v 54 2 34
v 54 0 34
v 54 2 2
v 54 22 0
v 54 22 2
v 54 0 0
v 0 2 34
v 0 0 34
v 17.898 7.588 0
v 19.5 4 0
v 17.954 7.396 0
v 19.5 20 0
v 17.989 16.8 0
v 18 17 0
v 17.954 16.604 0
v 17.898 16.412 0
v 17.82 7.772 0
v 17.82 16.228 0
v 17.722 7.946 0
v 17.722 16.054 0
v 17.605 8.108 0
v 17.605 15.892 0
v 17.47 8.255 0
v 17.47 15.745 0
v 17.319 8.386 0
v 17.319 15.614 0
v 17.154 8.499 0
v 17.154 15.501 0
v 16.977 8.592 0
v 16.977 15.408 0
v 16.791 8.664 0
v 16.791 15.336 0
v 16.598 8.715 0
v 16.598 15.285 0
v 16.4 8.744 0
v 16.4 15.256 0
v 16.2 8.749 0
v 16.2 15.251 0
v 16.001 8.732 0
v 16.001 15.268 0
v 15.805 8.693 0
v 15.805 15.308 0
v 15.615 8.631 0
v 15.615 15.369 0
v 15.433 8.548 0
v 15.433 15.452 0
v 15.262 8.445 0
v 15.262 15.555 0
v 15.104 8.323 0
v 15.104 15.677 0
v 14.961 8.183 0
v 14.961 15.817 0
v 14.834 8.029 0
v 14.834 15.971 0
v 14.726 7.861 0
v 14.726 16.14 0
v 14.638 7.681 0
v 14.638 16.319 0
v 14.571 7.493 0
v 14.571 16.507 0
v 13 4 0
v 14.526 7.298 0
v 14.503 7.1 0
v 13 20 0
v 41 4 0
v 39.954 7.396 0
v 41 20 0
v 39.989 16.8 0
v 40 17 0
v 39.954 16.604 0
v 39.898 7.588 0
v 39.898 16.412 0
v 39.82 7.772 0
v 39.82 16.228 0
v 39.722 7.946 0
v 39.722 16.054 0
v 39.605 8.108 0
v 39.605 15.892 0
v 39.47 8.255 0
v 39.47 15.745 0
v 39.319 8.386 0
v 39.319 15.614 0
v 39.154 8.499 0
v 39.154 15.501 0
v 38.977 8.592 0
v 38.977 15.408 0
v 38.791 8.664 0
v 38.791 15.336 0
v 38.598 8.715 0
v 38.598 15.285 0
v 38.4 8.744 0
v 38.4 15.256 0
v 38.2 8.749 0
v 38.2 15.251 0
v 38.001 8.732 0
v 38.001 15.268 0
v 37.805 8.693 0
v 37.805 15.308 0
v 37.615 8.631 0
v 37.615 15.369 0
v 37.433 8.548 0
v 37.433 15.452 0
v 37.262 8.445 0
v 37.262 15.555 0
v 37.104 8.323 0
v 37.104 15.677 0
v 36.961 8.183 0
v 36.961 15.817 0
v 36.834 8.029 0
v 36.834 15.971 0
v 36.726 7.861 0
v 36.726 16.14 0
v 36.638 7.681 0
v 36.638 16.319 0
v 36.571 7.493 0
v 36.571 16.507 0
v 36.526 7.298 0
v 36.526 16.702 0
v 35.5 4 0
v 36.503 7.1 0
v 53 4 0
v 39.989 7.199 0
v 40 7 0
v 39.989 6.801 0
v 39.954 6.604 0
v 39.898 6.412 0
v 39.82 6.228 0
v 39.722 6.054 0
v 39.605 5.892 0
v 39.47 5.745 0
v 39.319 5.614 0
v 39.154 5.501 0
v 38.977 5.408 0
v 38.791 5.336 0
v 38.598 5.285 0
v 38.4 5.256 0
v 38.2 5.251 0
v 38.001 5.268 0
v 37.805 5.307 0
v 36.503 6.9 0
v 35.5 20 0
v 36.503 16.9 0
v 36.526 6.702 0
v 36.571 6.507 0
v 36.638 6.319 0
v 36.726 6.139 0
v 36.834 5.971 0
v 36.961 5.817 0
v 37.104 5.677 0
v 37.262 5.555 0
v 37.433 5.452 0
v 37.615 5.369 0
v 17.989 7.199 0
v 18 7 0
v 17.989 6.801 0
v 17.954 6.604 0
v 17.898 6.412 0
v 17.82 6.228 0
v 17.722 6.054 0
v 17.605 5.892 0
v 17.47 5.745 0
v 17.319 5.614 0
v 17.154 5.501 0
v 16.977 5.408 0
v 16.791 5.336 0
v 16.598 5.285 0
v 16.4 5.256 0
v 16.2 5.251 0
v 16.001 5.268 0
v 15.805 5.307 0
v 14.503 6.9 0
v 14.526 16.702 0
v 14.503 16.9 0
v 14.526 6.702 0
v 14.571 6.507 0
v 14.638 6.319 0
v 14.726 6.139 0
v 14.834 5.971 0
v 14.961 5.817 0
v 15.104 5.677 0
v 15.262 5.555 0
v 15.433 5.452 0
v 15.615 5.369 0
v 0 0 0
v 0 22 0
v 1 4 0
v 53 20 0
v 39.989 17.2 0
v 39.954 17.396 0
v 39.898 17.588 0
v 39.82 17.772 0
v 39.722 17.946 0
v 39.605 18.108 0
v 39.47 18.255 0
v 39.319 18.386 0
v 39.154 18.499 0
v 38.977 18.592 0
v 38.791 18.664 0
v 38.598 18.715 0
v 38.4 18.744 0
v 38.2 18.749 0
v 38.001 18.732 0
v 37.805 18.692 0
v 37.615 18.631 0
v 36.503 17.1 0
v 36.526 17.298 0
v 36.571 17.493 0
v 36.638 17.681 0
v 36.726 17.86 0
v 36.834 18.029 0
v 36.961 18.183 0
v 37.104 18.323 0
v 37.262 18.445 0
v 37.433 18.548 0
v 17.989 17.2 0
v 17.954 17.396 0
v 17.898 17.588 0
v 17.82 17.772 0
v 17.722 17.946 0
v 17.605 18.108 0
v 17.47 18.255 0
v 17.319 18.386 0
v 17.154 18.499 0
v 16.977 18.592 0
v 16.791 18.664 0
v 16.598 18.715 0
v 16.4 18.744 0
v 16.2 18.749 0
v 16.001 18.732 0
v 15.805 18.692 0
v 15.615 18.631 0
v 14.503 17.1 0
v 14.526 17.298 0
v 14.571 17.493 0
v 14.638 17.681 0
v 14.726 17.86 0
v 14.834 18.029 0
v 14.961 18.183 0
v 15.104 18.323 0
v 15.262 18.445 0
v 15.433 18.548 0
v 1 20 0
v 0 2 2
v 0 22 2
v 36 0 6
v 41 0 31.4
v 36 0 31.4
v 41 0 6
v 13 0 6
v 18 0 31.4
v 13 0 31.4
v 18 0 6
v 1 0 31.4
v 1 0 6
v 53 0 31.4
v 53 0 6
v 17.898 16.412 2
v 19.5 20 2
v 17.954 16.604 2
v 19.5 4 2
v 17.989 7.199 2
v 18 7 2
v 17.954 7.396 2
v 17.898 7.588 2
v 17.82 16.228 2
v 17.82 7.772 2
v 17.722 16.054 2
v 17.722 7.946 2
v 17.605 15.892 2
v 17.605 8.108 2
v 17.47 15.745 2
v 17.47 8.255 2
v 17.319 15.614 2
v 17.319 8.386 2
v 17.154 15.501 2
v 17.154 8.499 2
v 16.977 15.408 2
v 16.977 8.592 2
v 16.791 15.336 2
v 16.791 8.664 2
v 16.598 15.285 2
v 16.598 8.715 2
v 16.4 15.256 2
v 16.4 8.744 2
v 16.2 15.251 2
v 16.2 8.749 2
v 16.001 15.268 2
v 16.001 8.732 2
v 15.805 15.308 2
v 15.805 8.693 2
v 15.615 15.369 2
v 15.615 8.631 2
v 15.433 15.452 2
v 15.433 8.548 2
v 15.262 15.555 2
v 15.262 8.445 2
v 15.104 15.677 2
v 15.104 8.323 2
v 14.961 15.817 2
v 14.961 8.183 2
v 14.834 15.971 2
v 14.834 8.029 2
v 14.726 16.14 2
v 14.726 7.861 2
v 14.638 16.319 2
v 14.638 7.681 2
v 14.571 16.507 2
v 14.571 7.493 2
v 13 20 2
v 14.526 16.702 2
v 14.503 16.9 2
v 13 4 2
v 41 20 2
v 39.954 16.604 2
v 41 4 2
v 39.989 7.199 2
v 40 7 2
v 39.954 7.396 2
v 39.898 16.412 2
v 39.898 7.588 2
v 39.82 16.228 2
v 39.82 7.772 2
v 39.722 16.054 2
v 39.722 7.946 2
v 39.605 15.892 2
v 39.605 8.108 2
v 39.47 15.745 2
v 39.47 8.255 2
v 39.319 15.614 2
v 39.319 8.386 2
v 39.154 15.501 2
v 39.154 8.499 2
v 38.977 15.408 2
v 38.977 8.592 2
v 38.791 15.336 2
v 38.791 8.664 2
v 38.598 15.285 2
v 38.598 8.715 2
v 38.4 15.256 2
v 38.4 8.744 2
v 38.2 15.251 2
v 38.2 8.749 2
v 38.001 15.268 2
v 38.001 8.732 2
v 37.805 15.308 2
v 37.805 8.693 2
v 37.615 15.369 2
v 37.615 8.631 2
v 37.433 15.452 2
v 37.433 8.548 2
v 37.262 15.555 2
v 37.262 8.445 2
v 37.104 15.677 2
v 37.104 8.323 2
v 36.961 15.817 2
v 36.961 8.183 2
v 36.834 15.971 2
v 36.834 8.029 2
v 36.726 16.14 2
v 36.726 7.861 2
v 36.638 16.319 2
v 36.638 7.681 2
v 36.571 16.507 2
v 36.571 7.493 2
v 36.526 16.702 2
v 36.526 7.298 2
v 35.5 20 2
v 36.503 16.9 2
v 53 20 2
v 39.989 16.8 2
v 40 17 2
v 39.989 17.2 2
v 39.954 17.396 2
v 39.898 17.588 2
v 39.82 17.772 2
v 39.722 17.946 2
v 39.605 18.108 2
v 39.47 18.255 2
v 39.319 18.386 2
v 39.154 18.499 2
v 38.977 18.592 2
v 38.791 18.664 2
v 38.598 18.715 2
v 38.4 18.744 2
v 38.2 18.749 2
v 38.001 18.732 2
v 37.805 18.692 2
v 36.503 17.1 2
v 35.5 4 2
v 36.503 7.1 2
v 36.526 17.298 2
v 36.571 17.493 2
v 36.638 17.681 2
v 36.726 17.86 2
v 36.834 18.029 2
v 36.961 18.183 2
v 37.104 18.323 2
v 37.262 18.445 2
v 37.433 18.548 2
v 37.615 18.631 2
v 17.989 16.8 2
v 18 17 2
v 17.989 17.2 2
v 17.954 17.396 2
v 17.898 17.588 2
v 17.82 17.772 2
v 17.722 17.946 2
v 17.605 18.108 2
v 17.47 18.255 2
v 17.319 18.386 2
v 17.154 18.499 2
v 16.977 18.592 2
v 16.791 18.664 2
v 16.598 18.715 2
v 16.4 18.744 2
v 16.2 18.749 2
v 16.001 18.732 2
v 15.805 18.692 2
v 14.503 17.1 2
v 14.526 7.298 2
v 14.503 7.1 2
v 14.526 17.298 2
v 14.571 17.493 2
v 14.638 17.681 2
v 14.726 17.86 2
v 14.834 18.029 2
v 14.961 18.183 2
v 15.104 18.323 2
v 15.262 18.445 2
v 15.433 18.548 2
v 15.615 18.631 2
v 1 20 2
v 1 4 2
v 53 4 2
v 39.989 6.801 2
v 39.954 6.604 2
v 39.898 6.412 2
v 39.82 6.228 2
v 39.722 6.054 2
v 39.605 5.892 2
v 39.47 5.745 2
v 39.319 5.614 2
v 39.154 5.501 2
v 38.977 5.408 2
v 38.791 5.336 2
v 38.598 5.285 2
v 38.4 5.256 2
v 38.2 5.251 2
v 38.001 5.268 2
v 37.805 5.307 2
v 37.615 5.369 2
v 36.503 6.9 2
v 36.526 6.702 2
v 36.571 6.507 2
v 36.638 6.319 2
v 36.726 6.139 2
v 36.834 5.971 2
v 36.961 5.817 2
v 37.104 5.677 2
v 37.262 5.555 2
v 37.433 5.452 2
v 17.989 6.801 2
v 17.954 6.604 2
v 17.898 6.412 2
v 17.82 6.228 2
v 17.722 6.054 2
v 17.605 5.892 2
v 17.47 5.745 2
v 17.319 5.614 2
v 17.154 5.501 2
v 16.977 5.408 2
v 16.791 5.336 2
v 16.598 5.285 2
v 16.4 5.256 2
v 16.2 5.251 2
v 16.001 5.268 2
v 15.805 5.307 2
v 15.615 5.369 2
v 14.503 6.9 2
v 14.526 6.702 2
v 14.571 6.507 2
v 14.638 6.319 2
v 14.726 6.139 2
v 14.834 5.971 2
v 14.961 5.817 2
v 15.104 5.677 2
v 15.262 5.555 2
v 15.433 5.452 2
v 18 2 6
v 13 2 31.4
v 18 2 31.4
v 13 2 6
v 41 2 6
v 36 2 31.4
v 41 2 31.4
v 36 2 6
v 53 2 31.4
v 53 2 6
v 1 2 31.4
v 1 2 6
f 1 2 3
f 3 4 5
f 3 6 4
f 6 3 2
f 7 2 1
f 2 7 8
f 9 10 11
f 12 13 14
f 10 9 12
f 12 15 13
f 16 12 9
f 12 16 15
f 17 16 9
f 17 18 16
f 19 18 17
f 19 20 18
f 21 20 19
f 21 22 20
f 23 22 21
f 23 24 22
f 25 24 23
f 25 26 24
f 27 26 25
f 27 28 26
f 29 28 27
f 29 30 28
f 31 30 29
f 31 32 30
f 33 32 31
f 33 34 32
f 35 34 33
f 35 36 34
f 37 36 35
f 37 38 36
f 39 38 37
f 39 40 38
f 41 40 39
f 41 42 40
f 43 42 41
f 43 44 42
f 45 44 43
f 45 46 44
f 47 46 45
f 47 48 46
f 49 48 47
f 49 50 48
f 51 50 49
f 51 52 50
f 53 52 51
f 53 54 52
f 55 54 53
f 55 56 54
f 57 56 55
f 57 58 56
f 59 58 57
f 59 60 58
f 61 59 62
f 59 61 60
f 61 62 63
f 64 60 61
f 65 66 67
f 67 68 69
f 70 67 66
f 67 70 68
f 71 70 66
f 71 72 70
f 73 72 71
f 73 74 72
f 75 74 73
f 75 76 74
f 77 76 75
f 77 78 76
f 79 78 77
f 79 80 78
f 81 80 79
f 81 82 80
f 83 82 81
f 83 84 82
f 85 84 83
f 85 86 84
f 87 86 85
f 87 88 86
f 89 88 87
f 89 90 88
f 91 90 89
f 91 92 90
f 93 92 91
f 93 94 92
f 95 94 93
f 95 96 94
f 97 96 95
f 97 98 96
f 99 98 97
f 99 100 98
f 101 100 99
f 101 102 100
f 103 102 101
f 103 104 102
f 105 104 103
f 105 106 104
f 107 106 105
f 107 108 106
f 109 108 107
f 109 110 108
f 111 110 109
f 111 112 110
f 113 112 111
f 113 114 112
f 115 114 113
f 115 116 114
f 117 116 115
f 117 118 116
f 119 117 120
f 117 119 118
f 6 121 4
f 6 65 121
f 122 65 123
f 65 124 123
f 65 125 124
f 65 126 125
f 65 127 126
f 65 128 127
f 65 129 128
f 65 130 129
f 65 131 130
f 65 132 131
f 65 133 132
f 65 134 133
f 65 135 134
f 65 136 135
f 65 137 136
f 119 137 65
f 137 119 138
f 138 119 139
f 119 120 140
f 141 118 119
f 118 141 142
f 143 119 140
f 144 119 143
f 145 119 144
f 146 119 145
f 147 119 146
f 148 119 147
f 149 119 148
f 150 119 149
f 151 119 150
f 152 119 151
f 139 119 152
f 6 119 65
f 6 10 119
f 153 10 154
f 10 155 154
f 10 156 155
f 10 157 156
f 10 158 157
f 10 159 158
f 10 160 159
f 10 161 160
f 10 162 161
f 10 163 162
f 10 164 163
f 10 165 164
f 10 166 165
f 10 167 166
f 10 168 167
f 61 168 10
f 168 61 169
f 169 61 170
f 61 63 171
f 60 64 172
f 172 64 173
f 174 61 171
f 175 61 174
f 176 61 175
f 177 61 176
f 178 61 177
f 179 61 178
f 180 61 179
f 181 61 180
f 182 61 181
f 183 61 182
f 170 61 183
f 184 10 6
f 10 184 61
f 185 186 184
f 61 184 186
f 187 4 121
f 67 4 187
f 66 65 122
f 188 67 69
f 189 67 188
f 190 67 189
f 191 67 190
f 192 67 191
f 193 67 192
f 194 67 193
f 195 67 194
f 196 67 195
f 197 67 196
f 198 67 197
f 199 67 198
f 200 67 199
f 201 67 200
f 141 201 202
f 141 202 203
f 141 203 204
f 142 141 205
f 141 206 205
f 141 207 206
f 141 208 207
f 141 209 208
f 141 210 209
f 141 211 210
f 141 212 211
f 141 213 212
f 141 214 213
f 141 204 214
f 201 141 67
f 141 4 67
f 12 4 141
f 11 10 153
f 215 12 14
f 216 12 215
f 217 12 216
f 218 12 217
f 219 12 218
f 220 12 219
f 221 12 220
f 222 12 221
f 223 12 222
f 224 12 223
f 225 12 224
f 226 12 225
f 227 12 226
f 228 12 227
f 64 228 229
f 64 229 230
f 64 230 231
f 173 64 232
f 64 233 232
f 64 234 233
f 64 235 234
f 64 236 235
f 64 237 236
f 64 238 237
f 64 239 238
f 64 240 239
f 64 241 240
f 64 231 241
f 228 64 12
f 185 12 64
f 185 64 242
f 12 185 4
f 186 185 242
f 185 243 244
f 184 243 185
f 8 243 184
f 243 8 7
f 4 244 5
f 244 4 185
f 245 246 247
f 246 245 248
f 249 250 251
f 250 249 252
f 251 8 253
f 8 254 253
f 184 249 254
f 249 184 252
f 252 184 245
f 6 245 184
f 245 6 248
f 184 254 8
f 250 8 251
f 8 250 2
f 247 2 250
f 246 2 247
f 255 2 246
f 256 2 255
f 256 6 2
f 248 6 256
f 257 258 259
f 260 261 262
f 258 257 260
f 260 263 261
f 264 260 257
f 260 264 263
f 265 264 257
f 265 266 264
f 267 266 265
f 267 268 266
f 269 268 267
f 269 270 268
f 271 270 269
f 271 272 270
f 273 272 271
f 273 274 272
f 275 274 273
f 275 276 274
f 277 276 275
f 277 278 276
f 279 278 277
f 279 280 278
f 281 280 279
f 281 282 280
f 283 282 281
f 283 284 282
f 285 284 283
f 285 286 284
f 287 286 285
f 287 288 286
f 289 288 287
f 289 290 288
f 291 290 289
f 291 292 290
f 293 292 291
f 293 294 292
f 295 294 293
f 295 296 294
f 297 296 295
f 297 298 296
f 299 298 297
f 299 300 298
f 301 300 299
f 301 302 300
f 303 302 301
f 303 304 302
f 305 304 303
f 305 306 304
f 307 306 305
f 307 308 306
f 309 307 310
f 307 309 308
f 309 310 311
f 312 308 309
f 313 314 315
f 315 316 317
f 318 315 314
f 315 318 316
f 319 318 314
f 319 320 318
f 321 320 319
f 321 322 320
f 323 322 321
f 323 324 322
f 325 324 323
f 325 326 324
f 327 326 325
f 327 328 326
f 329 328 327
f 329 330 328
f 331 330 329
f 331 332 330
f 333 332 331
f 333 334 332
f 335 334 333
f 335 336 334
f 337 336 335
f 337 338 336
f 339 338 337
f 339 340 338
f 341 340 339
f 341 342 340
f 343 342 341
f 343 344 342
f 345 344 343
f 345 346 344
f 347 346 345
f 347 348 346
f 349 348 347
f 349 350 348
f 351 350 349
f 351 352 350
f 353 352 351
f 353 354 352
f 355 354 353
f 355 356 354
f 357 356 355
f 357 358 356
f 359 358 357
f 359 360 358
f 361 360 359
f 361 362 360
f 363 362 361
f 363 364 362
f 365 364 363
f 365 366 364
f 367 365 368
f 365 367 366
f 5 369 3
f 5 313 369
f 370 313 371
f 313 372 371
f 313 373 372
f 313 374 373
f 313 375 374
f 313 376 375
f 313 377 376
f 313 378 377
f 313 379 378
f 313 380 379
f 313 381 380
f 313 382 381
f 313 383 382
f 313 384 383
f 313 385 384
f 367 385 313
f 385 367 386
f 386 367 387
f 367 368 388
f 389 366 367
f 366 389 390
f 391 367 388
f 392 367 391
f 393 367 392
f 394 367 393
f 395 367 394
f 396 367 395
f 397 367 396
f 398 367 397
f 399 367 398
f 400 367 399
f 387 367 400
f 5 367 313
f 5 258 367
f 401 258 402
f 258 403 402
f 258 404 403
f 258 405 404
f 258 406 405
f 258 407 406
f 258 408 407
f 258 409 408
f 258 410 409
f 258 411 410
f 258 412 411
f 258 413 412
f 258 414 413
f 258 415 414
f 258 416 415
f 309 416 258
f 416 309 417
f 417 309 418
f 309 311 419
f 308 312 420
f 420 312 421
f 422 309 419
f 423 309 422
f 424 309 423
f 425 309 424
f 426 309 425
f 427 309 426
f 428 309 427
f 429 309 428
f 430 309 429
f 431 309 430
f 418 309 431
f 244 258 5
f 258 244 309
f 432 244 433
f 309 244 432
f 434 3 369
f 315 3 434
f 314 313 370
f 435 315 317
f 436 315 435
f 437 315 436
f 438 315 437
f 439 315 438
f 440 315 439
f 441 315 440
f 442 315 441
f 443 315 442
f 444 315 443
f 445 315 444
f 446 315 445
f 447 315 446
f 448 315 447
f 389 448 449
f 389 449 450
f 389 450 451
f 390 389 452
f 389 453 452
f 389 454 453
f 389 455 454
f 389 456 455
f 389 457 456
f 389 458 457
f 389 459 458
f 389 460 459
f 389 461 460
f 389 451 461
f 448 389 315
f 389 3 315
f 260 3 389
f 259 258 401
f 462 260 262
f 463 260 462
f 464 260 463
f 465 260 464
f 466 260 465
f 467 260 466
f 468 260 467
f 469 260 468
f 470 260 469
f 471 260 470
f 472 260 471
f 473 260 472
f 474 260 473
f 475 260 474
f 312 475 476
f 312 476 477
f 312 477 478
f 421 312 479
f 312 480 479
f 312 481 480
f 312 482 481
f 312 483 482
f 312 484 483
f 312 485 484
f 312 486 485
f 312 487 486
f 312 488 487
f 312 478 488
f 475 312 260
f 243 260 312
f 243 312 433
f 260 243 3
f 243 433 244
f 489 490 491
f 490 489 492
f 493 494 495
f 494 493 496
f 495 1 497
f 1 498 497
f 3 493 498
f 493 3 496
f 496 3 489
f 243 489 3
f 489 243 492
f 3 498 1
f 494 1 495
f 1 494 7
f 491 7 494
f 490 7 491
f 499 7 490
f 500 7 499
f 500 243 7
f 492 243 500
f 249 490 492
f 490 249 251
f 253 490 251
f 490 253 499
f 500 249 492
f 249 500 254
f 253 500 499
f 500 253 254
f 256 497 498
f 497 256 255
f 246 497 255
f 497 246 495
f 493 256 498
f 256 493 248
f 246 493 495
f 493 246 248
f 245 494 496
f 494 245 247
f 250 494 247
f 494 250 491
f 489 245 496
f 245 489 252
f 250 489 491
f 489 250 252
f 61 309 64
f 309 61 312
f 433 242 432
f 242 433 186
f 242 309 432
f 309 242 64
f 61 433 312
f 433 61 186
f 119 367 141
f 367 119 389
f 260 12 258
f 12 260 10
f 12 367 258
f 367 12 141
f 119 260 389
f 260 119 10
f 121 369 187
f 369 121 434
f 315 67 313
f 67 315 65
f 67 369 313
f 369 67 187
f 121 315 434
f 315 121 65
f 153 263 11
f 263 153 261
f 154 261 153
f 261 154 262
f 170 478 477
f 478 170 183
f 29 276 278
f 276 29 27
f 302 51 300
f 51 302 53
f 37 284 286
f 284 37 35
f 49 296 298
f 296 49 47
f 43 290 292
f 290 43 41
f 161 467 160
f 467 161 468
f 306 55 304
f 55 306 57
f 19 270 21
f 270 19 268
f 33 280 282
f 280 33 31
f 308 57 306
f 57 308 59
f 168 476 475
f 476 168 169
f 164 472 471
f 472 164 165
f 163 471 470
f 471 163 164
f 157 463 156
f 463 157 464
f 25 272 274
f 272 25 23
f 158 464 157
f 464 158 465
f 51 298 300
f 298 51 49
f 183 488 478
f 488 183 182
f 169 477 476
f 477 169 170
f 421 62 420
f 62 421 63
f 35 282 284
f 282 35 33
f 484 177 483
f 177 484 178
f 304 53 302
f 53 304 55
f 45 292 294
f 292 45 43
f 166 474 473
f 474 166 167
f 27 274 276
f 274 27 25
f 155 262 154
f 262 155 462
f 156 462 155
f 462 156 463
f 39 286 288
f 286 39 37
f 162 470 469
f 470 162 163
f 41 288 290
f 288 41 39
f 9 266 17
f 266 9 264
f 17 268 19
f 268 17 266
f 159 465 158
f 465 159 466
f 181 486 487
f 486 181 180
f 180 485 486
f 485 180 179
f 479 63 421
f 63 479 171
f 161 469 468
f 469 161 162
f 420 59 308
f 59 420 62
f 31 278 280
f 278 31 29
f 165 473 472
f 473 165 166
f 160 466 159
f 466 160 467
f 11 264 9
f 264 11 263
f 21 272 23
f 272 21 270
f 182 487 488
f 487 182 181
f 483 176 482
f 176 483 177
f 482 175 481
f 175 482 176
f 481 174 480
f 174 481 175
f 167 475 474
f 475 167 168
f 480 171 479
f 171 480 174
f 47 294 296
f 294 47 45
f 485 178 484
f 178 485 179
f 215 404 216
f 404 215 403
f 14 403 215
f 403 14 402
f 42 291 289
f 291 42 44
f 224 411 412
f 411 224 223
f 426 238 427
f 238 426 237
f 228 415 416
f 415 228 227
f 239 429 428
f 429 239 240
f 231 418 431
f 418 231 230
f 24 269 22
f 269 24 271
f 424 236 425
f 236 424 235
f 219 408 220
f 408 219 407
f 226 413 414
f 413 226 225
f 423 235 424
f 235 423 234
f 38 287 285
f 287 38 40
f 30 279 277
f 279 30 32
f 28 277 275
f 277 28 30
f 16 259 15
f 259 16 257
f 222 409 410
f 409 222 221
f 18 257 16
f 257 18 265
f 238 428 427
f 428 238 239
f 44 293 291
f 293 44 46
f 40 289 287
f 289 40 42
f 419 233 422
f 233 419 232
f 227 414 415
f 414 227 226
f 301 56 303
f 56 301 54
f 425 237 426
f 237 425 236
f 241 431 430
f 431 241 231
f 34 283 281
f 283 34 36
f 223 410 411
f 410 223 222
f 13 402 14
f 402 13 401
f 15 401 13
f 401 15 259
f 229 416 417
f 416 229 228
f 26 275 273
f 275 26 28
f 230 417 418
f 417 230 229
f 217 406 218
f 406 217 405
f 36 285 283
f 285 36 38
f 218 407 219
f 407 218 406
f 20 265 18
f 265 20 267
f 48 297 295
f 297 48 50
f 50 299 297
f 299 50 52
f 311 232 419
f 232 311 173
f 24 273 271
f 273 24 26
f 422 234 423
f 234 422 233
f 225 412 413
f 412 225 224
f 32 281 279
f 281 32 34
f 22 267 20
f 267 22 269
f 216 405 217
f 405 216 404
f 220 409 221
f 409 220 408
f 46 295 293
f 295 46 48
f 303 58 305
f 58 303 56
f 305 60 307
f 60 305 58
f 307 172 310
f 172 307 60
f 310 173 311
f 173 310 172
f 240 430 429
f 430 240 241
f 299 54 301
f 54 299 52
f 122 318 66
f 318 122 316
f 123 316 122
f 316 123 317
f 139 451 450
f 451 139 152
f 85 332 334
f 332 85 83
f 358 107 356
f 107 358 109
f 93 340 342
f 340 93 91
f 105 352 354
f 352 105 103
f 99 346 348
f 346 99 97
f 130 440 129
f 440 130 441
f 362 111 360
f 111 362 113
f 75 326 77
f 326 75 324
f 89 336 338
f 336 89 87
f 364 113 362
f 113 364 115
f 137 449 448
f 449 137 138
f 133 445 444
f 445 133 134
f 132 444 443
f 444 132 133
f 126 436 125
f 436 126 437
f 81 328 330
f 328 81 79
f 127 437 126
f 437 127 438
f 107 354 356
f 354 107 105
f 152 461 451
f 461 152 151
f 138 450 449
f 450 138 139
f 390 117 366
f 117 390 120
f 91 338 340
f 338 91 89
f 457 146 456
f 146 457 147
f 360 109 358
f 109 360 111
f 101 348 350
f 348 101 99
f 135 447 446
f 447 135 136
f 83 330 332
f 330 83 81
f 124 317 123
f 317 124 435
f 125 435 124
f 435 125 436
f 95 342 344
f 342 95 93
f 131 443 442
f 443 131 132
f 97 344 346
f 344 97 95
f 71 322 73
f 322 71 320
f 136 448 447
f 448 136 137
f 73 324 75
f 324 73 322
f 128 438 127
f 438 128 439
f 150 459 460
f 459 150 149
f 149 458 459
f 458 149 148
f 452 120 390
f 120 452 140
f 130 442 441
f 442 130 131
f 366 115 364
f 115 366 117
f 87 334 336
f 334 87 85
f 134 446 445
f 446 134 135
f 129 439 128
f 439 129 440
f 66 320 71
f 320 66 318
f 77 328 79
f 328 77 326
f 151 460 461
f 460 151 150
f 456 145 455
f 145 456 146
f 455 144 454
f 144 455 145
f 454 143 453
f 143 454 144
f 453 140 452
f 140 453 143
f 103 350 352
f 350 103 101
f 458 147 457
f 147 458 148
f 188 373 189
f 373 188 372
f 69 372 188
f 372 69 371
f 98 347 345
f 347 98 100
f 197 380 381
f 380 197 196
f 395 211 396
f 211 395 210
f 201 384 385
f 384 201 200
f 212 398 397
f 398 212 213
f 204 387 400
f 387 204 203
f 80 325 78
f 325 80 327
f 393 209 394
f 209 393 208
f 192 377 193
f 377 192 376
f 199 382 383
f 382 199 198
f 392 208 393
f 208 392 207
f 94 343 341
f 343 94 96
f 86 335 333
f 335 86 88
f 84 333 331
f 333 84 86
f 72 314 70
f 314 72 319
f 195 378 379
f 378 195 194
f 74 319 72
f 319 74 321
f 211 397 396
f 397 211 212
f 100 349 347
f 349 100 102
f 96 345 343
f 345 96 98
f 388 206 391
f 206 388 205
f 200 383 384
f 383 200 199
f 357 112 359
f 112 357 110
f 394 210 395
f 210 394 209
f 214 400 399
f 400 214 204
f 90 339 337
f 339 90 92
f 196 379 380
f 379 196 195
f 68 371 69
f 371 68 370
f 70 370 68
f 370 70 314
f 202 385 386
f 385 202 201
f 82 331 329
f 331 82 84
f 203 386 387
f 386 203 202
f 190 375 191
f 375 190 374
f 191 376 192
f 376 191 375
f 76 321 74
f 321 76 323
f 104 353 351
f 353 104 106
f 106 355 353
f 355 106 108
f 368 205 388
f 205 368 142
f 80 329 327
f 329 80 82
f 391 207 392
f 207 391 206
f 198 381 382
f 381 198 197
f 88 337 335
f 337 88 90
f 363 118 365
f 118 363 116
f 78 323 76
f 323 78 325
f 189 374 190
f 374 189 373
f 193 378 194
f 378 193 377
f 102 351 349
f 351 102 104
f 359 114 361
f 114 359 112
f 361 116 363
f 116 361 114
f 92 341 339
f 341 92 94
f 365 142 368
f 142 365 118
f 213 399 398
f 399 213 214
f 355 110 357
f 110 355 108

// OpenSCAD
$fs = .2;
$fa = 2;

servo_wid   = 12;
servo_dpth  = 20;
servo_hgt   = 25.4;
servo_standoff = 4;
servo_mt_off   = 2;
servo_cc       = 42;

plate_wid   = servo_cc + servo_wid;
plate_dpth  = 20;
plate_hgt   = 34;
plate_thk   = 2;

module bracket() {
  difference() {
    cube([plate_wid,   plate_dpth + plate_thk, plate_hgt]);
    translate([-1,plate_thk, plate_thk])
      cube([plate_wid+2, plate_dpth + plate_thk, plate_hgt]);
    translate([1,-1, servo_standoff+plate_thk]) 
      cube([servo_wid,4,servo_hgt]);  // left servo
    translate([servo_cc-1,-1, servo_standoff+plate_thk]) 
      cube([servo_wid,4,servo_hgt]);  // right servo
    translate([18,-1, servo_standoff+plate_thk]) 
      cube([18,4,servo_hgt]);  // hole
    translate([1,4,-1]) 
      cube([servo_wid, plate_dpth-4, 5]); //left wall hole
    translate([19.5,4,-1]) 
      cube([16, plate_dpth-4, 5]); //right floor hole
    translate([servo_cc-1, 4, -1])
      cube([servo_wid, plate_dpth-4, 5]); //right wall hole
    translate([16.25,  7, -.1]) cylinder(3,1.75,1.75);
    translate([16.25, 17, -.1]) cylinder(3,1.75,1.75);
    translate([38.25,  7, -.1]) cylinder(3,1.75,1.75);
    translate([38.25, 17, -.1]) cylinder(3,1.75,1.75);
  }
}

//translate([0,plate_hgt,0]) rotate([90,0,0]) 
bracket();
